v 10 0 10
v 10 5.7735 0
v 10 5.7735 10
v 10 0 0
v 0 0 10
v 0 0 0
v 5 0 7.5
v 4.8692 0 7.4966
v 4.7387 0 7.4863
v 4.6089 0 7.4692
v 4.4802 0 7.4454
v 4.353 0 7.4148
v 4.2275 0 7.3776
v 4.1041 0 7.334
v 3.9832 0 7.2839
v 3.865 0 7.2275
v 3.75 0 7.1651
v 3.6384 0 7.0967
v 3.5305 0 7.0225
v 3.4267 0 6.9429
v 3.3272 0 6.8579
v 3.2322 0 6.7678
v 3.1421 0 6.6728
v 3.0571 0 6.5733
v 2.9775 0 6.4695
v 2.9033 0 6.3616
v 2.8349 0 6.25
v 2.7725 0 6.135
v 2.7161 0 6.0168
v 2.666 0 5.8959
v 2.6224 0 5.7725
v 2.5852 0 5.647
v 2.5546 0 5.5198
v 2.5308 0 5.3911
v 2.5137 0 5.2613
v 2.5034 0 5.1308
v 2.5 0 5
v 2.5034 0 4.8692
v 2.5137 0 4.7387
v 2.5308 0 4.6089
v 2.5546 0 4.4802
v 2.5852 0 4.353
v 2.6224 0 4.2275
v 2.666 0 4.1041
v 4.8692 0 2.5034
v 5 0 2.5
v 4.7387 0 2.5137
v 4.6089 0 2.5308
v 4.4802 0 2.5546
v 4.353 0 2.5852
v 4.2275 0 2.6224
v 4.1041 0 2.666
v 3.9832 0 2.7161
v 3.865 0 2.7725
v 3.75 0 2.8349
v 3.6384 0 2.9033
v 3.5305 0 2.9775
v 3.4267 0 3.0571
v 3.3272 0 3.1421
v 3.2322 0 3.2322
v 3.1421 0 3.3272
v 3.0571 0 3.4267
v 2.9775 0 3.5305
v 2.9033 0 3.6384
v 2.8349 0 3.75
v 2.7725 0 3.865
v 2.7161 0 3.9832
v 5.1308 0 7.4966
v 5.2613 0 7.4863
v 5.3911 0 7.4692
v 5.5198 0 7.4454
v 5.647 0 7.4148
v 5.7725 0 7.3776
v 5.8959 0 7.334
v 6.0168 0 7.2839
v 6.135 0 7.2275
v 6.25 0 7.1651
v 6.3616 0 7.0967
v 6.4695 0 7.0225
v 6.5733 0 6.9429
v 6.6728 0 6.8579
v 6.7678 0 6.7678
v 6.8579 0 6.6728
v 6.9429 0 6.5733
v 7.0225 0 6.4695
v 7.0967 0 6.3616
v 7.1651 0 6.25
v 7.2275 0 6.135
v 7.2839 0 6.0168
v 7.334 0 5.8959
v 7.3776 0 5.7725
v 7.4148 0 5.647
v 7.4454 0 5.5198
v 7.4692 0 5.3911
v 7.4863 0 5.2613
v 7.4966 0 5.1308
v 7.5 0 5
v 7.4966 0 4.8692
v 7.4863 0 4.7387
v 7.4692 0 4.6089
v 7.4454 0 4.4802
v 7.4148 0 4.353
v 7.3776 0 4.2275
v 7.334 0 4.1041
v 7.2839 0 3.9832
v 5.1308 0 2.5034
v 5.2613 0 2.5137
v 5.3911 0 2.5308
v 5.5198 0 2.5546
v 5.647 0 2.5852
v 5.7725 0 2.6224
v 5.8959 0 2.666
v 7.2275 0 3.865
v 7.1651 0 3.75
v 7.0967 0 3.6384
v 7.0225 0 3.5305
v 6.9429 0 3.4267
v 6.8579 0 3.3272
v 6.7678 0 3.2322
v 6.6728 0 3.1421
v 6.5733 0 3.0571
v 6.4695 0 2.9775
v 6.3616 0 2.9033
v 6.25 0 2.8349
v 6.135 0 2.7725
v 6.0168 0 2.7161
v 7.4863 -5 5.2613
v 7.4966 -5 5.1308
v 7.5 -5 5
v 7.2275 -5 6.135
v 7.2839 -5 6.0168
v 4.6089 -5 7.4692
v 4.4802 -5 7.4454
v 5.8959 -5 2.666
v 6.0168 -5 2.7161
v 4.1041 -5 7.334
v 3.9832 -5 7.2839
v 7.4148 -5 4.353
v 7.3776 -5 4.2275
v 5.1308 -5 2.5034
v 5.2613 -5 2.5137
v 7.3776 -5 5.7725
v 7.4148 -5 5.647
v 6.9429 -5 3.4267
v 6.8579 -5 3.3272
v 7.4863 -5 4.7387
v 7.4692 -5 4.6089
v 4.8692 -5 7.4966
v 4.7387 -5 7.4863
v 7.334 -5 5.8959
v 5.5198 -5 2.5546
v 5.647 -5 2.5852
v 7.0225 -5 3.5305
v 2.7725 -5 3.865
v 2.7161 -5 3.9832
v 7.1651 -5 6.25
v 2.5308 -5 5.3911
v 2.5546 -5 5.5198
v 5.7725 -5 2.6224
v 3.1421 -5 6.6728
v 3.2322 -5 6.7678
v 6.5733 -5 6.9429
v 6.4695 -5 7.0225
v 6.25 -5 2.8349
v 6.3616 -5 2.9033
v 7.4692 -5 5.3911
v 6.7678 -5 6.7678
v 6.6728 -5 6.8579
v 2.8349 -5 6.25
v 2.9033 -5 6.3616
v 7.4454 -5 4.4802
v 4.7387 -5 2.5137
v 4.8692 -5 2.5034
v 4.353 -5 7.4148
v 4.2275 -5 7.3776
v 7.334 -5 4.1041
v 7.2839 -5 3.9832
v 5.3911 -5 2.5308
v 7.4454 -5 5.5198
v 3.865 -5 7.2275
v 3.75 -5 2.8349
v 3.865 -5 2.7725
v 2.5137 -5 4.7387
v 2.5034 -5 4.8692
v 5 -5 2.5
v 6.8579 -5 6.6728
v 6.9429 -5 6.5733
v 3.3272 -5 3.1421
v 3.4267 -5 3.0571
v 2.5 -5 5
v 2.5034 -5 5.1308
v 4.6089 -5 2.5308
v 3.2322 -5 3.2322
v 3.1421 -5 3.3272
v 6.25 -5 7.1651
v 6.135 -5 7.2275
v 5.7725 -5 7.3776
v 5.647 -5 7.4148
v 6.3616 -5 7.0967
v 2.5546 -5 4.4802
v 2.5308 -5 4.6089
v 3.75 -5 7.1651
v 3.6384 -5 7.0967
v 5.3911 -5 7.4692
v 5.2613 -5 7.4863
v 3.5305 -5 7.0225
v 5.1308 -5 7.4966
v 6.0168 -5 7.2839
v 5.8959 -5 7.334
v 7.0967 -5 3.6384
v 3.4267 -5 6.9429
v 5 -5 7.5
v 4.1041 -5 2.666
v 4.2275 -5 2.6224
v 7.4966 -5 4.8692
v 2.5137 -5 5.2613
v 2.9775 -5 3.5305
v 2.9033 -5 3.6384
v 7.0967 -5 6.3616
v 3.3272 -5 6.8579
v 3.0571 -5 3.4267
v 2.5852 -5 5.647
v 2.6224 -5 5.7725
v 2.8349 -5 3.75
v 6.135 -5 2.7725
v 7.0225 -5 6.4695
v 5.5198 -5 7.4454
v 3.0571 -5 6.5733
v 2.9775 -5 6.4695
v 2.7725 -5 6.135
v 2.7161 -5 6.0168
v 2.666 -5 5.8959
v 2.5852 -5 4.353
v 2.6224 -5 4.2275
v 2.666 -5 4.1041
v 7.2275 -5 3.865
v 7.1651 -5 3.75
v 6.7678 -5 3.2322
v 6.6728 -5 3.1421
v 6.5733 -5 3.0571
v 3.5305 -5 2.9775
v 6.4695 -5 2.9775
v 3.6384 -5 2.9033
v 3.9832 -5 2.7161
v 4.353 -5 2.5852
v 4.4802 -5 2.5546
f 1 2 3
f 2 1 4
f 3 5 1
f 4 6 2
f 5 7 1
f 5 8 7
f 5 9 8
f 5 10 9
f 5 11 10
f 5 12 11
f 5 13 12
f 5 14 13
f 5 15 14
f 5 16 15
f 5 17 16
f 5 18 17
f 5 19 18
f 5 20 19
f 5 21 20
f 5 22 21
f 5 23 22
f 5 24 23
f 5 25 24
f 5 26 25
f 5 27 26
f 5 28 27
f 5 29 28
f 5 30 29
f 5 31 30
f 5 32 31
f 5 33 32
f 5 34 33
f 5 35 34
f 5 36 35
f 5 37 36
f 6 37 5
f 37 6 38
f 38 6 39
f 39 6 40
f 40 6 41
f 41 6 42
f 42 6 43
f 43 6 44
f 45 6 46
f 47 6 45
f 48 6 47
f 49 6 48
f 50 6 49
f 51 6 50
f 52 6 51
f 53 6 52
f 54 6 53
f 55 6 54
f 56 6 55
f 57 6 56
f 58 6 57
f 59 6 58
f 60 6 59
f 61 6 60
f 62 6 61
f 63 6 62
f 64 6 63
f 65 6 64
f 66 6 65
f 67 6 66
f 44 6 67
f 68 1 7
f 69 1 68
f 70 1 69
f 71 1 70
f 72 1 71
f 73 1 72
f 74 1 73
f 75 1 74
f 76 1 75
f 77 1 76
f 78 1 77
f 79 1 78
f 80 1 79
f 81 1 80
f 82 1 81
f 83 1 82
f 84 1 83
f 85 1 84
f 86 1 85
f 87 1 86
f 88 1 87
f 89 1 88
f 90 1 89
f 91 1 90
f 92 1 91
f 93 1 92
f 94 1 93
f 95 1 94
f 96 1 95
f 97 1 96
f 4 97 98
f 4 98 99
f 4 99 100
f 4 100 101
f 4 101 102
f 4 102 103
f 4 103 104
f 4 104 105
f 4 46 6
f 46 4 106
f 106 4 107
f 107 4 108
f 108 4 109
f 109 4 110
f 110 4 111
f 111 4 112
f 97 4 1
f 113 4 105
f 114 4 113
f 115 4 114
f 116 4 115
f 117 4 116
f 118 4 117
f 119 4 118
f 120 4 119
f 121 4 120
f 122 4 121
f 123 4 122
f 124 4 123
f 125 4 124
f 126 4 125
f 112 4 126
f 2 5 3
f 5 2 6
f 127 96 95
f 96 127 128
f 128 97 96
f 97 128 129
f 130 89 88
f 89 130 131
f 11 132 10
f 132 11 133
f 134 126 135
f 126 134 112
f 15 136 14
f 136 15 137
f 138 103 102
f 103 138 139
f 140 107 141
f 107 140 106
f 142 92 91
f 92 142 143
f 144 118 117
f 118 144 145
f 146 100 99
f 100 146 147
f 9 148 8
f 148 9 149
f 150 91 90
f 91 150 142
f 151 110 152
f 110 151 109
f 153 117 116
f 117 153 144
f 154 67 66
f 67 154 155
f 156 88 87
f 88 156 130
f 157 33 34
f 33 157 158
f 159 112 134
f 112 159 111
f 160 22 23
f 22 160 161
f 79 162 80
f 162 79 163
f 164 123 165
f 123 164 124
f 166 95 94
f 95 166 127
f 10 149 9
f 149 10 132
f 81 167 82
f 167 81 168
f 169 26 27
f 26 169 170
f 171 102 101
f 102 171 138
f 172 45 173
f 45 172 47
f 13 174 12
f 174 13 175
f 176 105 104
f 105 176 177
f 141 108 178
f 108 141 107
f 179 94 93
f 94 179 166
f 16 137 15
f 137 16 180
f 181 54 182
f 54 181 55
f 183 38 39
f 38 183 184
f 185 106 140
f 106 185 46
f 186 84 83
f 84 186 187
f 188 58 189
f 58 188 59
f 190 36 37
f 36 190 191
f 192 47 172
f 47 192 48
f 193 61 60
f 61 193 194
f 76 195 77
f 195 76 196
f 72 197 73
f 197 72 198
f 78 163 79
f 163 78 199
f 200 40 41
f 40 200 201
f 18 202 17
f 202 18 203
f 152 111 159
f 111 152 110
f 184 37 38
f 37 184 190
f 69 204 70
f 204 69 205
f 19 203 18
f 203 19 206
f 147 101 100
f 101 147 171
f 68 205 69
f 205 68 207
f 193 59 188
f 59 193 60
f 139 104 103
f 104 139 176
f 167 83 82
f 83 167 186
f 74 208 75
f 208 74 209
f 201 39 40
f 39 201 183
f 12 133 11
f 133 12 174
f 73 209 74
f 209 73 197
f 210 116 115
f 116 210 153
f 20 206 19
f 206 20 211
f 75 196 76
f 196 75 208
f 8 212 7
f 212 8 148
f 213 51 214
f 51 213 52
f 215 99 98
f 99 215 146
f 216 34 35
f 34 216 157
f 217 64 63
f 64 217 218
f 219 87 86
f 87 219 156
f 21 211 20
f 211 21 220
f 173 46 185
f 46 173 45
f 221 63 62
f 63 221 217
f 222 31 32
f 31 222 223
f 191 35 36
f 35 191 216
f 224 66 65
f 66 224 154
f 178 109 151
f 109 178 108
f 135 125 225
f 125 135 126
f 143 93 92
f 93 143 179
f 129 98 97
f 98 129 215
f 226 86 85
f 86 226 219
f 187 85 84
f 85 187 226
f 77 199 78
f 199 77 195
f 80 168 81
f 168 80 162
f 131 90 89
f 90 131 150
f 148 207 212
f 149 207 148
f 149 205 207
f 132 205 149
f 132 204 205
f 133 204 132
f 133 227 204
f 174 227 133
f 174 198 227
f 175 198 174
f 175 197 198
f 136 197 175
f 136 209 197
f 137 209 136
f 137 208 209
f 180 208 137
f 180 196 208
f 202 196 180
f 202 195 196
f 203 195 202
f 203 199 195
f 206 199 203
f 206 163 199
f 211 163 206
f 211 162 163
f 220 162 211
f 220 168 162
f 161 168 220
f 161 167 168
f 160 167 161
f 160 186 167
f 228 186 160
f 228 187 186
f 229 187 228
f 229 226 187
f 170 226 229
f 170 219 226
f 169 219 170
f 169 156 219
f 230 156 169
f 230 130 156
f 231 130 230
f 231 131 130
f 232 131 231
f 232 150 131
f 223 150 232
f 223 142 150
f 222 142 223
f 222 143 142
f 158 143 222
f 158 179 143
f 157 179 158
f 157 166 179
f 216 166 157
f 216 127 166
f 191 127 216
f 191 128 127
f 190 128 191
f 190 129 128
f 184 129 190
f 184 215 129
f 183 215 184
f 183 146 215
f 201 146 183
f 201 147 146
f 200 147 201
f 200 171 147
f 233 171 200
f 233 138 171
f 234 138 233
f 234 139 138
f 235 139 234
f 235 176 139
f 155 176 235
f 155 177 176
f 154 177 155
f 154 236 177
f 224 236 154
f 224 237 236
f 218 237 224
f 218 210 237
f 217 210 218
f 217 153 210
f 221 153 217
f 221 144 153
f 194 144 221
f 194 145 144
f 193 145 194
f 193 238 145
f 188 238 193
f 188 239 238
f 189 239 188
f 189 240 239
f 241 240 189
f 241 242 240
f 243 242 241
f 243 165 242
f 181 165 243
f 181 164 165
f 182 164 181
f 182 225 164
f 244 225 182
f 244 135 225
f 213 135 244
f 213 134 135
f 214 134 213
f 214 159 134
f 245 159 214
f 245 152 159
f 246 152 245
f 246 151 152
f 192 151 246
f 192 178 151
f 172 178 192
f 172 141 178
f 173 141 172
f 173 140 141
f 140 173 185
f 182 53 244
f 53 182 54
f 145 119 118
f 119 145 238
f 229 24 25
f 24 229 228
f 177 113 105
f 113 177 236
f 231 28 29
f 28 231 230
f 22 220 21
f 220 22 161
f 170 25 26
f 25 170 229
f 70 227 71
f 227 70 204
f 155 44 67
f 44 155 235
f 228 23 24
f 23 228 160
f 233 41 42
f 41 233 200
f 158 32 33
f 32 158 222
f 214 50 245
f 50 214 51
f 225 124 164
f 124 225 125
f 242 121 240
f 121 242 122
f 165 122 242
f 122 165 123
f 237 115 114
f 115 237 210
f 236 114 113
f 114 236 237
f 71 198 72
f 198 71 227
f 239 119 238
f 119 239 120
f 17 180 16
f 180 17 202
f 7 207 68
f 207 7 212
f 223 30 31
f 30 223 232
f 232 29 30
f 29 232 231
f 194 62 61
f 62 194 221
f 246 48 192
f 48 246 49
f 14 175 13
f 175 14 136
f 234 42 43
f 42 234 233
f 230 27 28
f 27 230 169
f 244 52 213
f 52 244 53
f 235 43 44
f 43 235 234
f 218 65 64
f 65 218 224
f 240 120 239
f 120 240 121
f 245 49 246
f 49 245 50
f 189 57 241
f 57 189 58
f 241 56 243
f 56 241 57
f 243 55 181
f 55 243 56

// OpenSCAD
$fn=120;

difference() {
    cube([10,10,10]);
    rotate([0,0,30]) cube([20,12,12]);
}

translate([5,0,5]) rotate([90,0,0])  cylinder(d=5,h=5);
